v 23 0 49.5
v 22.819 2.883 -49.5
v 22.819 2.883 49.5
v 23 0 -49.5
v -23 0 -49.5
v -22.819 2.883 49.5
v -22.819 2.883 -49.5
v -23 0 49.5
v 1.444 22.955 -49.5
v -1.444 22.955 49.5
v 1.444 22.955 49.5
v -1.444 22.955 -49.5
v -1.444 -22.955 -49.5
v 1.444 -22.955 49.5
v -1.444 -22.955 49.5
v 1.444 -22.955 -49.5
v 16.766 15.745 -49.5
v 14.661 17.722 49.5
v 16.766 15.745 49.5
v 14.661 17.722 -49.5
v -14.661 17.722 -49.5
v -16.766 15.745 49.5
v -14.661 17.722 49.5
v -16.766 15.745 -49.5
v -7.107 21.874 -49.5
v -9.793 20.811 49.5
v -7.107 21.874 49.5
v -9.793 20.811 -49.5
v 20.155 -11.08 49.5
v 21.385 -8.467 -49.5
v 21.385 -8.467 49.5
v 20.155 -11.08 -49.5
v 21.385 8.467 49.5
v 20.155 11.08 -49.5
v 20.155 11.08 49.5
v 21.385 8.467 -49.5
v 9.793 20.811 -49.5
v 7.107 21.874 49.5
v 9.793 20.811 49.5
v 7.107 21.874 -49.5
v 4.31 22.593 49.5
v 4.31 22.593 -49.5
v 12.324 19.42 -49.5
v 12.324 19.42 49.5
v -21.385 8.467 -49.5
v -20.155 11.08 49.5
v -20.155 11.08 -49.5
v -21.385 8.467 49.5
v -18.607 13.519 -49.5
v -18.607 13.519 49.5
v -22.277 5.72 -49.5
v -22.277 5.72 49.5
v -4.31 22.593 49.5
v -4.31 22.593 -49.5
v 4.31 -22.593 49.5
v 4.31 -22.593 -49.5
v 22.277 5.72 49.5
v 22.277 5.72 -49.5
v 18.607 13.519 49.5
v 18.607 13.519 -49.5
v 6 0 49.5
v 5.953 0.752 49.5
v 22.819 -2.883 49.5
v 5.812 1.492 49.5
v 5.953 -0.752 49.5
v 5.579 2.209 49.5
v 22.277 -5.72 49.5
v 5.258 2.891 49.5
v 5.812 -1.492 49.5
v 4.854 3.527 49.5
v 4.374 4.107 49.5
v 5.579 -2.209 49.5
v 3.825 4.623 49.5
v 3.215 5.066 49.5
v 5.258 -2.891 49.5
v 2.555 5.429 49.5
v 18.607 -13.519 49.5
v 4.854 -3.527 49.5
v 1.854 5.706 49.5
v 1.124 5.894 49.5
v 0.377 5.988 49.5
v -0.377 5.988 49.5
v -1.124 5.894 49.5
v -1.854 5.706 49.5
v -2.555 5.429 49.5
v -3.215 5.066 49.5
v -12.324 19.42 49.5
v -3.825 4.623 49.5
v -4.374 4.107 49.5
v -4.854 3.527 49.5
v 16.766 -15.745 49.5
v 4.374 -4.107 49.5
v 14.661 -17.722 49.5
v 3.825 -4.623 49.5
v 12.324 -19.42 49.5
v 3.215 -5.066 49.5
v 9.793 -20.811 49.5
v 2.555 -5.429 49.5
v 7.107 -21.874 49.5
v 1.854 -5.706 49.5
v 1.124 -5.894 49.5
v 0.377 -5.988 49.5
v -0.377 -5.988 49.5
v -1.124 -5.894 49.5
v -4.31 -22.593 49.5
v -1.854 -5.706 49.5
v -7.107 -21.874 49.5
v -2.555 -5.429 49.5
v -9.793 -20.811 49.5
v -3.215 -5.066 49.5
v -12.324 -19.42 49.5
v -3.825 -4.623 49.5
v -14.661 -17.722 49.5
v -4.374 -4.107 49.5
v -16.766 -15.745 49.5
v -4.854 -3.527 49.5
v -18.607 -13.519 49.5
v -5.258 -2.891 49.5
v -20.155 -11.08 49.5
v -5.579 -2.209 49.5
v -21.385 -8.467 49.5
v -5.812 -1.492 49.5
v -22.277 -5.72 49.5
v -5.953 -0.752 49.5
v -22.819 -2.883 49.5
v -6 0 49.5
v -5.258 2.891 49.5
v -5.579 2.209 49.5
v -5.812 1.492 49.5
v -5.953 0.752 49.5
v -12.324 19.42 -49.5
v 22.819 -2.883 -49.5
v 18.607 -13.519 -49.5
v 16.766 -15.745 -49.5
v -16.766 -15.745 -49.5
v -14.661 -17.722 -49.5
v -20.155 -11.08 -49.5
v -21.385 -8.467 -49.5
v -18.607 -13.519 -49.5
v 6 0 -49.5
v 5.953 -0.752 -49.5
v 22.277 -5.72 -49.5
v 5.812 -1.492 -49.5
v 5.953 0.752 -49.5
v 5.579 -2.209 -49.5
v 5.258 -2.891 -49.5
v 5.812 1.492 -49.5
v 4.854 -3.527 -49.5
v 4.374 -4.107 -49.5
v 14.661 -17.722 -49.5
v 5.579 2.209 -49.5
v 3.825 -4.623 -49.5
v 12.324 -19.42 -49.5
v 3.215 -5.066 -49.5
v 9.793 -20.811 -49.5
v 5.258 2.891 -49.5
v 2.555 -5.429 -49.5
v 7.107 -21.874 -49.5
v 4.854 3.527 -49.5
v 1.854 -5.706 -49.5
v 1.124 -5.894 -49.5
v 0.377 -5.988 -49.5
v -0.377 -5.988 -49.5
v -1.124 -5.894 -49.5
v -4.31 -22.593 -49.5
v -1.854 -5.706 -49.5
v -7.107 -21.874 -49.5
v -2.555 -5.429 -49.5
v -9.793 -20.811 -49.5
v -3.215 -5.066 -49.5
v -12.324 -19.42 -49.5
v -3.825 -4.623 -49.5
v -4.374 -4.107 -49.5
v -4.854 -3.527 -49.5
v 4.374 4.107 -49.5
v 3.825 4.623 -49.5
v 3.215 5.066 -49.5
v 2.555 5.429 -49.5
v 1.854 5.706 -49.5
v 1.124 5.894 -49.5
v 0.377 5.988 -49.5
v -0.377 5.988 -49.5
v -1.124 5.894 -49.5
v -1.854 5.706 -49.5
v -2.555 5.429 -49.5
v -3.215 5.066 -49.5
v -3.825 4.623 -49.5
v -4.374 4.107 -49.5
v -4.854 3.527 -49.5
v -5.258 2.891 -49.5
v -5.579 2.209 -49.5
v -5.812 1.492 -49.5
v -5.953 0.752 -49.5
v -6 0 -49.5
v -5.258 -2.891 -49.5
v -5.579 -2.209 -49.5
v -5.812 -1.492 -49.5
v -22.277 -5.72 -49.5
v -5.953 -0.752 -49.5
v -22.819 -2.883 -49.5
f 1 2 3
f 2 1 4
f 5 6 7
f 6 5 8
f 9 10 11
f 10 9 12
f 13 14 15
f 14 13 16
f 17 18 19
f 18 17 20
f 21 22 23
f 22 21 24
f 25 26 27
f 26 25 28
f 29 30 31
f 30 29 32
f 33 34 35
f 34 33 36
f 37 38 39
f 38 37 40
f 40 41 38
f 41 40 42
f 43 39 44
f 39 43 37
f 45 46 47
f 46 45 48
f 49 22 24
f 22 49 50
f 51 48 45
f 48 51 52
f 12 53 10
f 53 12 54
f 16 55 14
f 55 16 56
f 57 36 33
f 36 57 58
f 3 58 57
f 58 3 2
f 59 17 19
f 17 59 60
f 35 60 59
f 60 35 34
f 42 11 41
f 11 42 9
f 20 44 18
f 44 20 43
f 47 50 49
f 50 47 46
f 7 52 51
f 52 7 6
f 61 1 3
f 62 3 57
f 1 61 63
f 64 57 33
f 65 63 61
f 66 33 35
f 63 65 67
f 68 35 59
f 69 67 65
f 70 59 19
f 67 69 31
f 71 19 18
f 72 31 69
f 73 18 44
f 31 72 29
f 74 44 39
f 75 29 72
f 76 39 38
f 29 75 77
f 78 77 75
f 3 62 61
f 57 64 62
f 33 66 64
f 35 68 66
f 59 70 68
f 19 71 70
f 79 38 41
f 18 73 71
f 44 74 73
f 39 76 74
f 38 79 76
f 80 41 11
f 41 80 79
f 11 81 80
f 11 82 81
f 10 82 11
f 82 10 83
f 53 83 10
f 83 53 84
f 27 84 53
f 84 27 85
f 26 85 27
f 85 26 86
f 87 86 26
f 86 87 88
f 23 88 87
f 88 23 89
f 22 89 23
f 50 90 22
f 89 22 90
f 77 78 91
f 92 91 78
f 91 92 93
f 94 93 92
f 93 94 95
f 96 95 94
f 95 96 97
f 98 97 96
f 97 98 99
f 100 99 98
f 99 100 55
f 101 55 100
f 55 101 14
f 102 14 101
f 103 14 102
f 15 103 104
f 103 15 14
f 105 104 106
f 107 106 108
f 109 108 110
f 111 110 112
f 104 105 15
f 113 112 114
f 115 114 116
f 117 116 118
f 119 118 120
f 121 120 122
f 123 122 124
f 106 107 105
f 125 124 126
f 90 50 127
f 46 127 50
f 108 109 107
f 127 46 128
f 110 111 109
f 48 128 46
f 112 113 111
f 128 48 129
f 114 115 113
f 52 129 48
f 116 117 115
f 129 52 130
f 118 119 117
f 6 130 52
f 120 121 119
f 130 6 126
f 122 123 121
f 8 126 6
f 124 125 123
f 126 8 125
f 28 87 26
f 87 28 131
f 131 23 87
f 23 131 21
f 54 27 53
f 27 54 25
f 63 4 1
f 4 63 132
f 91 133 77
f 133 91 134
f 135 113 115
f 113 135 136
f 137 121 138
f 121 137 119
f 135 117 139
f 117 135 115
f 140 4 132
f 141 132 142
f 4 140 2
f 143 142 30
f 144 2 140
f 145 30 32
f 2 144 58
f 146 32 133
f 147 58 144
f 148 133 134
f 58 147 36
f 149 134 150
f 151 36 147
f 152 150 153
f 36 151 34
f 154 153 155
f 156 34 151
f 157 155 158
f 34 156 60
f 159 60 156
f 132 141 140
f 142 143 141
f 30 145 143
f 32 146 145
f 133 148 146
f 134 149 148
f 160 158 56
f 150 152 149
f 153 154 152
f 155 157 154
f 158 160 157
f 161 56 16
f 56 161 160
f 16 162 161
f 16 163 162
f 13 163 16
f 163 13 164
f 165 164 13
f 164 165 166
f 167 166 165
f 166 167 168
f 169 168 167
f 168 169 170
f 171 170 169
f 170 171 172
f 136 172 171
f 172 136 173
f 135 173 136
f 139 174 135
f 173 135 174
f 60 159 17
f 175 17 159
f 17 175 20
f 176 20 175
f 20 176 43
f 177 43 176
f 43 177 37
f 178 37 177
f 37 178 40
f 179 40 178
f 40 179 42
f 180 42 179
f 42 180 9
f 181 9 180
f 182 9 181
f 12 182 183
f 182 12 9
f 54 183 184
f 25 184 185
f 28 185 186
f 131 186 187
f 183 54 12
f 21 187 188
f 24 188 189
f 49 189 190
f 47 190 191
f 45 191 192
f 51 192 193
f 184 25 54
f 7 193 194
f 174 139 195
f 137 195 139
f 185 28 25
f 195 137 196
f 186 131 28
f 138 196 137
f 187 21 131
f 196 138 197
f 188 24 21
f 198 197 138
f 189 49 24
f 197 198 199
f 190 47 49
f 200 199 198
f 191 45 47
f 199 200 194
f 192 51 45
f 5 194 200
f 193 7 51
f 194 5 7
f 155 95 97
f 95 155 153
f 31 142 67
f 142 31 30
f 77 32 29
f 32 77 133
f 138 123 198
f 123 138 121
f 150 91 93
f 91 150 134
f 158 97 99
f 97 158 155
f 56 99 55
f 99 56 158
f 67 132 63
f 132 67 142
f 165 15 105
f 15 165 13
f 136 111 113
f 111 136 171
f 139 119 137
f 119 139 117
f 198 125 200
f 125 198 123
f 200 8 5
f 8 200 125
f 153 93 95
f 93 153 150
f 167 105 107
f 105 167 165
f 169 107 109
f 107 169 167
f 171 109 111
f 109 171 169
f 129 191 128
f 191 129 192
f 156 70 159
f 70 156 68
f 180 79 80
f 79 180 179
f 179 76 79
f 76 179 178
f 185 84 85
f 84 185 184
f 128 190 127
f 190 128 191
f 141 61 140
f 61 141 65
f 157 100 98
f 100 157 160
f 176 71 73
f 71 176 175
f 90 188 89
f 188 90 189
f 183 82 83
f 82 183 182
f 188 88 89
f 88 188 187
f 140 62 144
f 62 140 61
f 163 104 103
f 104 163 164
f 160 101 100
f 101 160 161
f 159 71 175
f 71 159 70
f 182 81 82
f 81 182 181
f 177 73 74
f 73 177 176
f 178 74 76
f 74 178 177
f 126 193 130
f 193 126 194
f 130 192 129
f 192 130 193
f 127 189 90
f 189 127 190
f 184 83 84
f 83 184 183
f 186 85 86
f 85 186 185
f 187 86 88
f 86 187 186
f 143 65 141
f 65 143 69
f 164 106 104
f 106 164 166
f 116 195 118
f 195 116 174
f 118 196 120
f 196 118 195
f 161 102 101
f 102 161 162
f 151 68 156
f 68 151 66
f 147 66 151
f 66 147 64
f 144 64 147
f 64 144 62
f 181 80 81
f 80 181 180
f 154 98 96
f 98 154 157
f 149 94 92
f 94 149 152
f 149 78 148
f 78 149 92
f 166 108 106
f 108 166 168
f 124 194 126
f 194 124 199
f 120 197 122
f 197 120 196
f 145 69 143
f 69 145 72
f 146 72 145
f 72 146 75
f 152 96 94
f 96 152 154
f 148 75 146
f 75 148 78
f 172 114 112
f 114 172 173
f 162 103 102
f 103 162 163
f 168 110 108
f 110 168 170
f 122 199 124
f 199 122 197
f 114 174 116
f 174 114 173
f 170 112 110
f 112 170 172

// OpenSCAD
$fn = 50;


difference() {
	union() {
		translate(v = [0, 0, -49.5000000000]) {
			cylinder(h = 99, r = 23.0000000000);
		}
	}
	union() {
		translate(v = [0, 0, -100.0000000000]) {
			cylinder(h = 200, r = 6);
		}
	}
}
